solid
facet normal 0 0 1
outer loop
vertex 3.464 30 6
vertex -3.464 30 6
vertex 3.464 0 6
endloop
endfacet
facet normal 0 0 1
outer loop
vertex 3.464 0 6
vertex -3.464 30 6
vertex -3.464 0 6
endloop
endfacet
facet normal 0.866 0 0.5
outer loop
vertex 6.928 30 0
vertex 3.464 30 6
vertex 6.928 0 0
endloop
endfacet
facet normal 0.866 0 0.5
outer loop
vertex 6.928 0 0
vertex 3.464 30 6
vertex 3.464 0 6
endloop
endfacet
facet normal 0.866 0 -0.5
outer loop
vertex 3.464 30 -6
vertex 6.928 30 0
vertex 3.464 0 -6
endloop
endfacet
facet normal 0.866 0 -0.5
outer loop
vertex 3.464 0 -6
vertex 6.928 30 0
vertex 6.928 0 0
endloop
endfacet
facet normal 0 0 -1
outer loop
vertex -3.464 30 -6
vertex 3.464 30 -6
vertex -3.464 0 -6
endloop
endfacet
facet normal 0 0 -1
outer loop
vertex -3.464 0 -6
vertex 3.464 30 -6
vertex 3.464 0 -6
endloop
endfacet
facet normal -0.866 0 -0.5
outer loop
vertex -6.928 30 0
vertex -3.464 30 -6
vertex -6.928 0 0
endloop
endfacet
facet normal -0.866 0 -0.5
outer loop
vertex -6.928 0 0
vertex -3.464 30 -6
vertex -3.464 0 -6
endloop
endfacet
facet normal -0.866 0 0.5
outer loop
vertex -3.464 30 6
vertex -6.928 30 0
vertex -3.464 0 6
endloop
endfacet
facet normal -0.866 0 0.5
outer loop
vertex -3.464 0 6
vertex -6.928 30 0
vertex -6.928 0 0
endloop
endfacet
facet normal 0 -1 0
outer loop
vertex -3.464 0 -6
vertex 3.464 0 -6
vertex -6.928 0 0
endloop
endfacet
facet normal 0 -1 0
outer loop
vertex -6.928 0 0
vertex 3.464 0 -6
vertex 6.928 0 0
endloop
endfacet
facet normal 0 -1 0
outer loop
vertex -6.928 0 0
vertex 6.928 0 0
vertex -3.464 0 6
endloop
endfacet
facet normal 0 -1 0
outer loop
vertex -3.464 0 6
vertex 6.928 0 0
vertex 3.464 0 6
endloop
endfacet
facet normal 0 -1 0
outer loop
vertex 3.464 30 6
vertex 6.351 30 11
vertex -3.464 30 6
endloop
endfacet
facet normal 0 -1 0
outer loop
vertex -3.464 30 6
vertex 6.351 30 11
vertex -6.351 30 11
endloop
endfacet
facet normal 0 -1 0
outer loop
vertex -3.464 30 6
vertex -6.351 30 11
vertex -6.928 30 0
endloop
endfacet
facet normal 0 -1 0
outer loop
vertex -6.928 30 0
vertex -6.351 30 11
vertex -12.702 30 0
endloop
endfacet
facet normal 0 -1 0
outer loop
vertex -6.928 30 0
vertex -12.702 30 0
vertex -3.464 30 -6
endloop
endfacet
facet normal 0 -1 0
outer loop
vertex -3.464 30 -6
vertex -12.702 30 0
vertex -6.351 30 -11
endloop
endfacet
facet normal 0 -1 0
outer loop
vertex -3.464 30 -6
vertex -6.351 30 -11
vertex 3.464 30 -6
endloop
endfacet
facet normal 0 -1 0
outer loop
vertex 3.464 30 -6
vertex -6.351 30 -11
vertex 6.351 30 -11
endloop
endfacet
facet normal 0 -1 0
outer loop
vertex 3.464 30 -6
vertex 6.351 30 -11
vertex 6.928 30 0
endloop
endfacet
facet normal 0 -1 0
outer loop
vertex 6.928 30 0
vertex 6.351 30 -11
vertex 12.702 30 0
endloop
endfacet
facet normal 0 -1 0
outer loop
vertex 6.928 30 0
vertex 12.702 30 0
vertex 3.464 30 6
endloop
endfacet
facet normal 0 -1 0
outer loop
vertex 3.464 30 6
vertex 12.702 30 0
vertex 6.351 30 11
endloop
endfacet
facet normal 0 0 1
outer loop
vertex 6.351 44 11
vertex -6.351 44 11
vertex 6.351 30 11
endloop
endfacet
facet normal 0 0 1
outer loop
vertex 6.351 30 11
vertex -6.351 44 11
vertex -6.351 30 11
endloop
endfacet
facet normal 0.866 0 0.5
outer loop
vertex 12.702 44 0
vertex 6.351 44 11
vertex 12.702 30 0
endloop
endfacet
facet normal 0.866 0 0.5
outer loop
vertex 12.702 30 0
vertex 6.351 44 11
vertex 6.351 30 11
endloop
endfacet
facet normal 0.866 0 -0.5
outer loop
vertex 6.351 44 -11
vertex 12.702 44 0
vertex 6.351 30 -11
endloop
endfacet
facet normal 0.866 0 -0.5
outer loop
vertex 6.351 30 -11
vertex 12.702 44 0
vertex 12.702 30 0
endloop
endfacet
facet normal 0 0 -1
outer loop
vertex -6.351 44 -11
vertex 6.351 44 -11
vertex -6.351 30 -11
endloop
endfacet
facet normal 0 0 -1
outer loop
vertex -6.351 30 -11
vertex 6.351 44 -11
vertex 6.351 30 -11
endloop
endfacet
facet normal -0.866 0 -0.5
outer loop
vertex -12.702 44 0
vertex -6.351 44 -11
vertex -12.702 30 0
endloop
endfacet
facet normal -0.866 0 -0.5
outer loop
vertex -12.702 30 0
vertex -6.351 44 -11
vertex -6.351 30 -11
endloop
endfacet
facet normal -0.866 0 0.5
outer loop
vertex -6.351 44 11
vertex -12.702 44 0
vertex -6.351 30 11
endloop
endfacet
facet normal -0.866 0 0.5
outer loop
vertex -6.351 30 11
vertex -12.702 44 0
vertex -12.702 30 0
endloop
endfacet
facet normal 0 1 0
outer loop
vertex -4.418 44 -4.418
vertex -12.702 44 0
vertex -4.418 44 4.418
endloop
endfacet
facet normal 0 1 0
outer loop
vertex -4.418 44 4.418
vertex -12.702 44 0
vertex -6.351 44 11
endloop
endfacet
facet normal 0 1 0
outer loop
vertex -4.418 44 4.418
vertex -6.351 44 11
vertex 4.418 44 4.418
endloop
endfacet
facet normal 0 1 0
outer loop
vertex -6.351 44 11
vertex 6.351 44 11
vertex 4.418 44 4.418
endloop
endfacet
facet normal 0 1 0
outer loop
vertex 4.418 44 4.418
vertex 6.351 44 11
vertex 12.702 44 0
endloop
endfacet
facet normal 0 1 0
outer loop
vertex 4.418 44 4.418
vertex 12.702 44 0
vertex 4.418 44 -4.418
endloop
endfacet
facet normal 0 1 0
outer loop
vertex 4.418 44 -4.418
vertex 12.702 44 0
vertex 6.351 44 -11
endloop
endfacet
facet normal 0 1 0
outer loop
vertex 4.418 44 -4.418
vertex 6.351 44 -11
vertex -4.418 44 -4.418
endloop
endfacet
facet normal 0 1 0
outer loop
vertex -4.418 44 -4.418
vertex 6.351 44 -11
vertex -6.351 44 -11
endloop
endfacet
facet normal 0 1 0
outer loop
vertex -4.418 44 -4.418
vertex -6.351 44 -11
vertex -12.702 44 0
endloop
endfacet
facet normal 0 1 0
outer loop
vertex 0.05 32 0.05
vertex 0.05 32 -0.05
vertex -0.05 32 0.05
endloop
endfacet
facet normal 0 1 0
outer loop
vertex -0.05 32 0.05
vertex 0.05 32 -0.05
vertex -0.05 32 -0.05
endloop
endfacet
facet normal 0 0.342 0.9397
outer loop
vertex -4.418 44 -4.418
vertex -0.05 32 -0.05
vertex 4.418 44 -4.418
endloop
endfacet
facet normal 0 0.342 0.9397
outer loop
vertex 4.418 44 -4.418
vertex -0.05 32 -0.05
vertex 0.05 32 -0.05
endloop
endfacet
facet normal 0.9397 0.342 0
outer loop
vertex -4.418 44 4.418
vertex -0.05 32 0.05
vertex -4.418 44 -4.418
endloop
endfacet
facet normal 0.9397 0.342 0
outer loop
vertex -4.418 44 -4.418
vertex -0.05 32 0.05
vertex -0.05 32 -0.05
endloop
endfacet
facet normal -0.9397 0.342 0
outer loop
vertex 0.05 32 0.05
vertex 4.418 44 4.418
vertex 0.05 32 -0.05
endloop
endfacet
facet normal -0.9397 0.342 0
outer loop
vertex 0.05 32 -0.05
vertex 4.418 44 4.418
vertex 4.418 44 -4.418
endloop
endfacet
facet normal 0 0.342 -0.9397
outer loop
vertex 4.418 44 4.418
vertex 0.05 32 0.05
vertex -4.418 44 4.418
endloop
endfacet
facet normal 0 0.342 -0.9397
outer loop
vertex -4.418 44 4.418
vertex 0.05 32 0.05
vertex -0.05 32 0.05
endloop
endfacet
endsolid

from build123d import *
from OCP.BRepFilletAPI import BRepFilletAPI_MakeChamfer

# Parameters (mm, degrees)
EXTRUDE_1_DEPTH     = 30
EXTRUDE_2_DEPTH     = 14
SKETCH_3_W          = 0.1
SKETCH_3_H          = 0.1
CUT_EXTRUDE_1_DEPTH = 12
CHAMFER_1_SIZE      = 4.367642811
CHAMFER_1_SIZE_2    = 12


with BuildPart() as part:
    # ｽｹｯﾁ1 → ﾎﾞｽ - 押し出し1 (new body)
    with BuildSketch(Plane(origin=(0, 0, 0), x_dir=(1, 0, 0), z_dir=(0, 1, 0))):
        Polygon((3.464101615, -6), (6.92820323, 0), (3.464101615, 6), (-3.464101615, 6), (-6.92820323, 0), (-3.464101615, -6), align=None)
    extrude(amount=EXTRUDE_1_DEPTH)

    # ｽｹｯﾁ2 → ﾎﾞｽ - 押し出し2 (add)
    with BuildSketch(Plane(origin=(0, 30, 0), x_dir=(1, 0, 0), z_dir=(0, 1, 0))):
        Polygon((6.350852961, -11), (12.701705922, 0), (6.350852961, 11), (-6.350852961, 11), (-12.701705922, 0), (-6.350852961, -11), align=None)
    extrude(amount=EXTRUDE_2_DEPTH)

    # ｽｹｯﾁ3 → ｶｯﾄ - 押し出し1 (cut)
    with BuildSketch(Plane(origin=(0, 44, 0), x_dir=(1, 0, 0), z_dir=(0, 1, 0))):
        Rectangle(SKETCH_3_W, SKETCH_3_H)
    extrude(amount=-CUT_EXTRUDE_1_DEPTH, mode=Mode.SUBTRACT)

    # 面取り1
    chamfer_1_edges_1 = [part.edges().sort_by_distance(p)[0] for p in [
        (0, 44, 0.05),
    ]]
    chamfer_1_side_1 = [part.faces().sort_by_distance(p)[0] for p in [
        (0, 44, 0.137352856),
    ]]
    chamfer_1_edges_2 = [part.edges().sort_by_distance(p)[0] for p in [
        (-0.05, 44, 0),
    ]]
    chamfer_1_side_2 = [part.faces().sort_by_distance(p)[0] for p in [
        (-0.137352856, 44, 0),
    ]]
    chamfer_1_edges_3 = [part.edges().sort_by_distance(p)[0] for p in [
        (0, 44, -0.05),
    ]]
    chamfer_1_side_3 = [part.faces().sort_by_distance(p)[0] for p in [
        (0, 44, -0.137352856),
    ]]
    chamfer_1_edges_4 = [part.edges().sort_by_distance(p)[0] for p in [
        (0.05, 44, 0),
    ]]
    chamfer_1_side_4 = [part.faces().sort_by_distance(p)[0] for p in [
        (0.137352856, 44, 0),
    ]]
    chamfer_1 = BRepFilletAPI_MakeChamfer(part.part.solid().wrapped)
    for e in chamfer_1_edges_1:
        chamfer_1.Add(CHAMFER_1_SIZE - 0.0001, CHAMFER_1_SIZE_2 - 0.0001, e.wrapped, chamfer_1_side_1[0].wrapped)
    for e in chamfer_1_edges_2:
        chamfer_1.Add(CHAMFER_1_SIZE - 0.0001, CHAMFER_1_SIZE_2 - 0.0001, e.wrapped, chamfer_1_side_2[0].wrapped)
    for e in chamfer_1_edges_3:
        chamfer_1.Add(CHAMFER_1_SIZE - 0.0001, CHAMFER_1_SIZE_2 - 0.0001, e.wrapped, chamfer_1_side_3[0].wrapped)
    for e in chamfer_1_edges_4:
        chamfer_1.Add(CHAMFER_1_SIZE - 0.0001, CHAMFER_1_SIZE_2 - 0.0001, e.wrapped, chamfer_1_side_4[0].wrapped)
    add(Compound.cast(chamfer_1.Shape()), mode=Mode.REPLACE)  # a hair under: the kernel refuses the full size


solid = part.part
